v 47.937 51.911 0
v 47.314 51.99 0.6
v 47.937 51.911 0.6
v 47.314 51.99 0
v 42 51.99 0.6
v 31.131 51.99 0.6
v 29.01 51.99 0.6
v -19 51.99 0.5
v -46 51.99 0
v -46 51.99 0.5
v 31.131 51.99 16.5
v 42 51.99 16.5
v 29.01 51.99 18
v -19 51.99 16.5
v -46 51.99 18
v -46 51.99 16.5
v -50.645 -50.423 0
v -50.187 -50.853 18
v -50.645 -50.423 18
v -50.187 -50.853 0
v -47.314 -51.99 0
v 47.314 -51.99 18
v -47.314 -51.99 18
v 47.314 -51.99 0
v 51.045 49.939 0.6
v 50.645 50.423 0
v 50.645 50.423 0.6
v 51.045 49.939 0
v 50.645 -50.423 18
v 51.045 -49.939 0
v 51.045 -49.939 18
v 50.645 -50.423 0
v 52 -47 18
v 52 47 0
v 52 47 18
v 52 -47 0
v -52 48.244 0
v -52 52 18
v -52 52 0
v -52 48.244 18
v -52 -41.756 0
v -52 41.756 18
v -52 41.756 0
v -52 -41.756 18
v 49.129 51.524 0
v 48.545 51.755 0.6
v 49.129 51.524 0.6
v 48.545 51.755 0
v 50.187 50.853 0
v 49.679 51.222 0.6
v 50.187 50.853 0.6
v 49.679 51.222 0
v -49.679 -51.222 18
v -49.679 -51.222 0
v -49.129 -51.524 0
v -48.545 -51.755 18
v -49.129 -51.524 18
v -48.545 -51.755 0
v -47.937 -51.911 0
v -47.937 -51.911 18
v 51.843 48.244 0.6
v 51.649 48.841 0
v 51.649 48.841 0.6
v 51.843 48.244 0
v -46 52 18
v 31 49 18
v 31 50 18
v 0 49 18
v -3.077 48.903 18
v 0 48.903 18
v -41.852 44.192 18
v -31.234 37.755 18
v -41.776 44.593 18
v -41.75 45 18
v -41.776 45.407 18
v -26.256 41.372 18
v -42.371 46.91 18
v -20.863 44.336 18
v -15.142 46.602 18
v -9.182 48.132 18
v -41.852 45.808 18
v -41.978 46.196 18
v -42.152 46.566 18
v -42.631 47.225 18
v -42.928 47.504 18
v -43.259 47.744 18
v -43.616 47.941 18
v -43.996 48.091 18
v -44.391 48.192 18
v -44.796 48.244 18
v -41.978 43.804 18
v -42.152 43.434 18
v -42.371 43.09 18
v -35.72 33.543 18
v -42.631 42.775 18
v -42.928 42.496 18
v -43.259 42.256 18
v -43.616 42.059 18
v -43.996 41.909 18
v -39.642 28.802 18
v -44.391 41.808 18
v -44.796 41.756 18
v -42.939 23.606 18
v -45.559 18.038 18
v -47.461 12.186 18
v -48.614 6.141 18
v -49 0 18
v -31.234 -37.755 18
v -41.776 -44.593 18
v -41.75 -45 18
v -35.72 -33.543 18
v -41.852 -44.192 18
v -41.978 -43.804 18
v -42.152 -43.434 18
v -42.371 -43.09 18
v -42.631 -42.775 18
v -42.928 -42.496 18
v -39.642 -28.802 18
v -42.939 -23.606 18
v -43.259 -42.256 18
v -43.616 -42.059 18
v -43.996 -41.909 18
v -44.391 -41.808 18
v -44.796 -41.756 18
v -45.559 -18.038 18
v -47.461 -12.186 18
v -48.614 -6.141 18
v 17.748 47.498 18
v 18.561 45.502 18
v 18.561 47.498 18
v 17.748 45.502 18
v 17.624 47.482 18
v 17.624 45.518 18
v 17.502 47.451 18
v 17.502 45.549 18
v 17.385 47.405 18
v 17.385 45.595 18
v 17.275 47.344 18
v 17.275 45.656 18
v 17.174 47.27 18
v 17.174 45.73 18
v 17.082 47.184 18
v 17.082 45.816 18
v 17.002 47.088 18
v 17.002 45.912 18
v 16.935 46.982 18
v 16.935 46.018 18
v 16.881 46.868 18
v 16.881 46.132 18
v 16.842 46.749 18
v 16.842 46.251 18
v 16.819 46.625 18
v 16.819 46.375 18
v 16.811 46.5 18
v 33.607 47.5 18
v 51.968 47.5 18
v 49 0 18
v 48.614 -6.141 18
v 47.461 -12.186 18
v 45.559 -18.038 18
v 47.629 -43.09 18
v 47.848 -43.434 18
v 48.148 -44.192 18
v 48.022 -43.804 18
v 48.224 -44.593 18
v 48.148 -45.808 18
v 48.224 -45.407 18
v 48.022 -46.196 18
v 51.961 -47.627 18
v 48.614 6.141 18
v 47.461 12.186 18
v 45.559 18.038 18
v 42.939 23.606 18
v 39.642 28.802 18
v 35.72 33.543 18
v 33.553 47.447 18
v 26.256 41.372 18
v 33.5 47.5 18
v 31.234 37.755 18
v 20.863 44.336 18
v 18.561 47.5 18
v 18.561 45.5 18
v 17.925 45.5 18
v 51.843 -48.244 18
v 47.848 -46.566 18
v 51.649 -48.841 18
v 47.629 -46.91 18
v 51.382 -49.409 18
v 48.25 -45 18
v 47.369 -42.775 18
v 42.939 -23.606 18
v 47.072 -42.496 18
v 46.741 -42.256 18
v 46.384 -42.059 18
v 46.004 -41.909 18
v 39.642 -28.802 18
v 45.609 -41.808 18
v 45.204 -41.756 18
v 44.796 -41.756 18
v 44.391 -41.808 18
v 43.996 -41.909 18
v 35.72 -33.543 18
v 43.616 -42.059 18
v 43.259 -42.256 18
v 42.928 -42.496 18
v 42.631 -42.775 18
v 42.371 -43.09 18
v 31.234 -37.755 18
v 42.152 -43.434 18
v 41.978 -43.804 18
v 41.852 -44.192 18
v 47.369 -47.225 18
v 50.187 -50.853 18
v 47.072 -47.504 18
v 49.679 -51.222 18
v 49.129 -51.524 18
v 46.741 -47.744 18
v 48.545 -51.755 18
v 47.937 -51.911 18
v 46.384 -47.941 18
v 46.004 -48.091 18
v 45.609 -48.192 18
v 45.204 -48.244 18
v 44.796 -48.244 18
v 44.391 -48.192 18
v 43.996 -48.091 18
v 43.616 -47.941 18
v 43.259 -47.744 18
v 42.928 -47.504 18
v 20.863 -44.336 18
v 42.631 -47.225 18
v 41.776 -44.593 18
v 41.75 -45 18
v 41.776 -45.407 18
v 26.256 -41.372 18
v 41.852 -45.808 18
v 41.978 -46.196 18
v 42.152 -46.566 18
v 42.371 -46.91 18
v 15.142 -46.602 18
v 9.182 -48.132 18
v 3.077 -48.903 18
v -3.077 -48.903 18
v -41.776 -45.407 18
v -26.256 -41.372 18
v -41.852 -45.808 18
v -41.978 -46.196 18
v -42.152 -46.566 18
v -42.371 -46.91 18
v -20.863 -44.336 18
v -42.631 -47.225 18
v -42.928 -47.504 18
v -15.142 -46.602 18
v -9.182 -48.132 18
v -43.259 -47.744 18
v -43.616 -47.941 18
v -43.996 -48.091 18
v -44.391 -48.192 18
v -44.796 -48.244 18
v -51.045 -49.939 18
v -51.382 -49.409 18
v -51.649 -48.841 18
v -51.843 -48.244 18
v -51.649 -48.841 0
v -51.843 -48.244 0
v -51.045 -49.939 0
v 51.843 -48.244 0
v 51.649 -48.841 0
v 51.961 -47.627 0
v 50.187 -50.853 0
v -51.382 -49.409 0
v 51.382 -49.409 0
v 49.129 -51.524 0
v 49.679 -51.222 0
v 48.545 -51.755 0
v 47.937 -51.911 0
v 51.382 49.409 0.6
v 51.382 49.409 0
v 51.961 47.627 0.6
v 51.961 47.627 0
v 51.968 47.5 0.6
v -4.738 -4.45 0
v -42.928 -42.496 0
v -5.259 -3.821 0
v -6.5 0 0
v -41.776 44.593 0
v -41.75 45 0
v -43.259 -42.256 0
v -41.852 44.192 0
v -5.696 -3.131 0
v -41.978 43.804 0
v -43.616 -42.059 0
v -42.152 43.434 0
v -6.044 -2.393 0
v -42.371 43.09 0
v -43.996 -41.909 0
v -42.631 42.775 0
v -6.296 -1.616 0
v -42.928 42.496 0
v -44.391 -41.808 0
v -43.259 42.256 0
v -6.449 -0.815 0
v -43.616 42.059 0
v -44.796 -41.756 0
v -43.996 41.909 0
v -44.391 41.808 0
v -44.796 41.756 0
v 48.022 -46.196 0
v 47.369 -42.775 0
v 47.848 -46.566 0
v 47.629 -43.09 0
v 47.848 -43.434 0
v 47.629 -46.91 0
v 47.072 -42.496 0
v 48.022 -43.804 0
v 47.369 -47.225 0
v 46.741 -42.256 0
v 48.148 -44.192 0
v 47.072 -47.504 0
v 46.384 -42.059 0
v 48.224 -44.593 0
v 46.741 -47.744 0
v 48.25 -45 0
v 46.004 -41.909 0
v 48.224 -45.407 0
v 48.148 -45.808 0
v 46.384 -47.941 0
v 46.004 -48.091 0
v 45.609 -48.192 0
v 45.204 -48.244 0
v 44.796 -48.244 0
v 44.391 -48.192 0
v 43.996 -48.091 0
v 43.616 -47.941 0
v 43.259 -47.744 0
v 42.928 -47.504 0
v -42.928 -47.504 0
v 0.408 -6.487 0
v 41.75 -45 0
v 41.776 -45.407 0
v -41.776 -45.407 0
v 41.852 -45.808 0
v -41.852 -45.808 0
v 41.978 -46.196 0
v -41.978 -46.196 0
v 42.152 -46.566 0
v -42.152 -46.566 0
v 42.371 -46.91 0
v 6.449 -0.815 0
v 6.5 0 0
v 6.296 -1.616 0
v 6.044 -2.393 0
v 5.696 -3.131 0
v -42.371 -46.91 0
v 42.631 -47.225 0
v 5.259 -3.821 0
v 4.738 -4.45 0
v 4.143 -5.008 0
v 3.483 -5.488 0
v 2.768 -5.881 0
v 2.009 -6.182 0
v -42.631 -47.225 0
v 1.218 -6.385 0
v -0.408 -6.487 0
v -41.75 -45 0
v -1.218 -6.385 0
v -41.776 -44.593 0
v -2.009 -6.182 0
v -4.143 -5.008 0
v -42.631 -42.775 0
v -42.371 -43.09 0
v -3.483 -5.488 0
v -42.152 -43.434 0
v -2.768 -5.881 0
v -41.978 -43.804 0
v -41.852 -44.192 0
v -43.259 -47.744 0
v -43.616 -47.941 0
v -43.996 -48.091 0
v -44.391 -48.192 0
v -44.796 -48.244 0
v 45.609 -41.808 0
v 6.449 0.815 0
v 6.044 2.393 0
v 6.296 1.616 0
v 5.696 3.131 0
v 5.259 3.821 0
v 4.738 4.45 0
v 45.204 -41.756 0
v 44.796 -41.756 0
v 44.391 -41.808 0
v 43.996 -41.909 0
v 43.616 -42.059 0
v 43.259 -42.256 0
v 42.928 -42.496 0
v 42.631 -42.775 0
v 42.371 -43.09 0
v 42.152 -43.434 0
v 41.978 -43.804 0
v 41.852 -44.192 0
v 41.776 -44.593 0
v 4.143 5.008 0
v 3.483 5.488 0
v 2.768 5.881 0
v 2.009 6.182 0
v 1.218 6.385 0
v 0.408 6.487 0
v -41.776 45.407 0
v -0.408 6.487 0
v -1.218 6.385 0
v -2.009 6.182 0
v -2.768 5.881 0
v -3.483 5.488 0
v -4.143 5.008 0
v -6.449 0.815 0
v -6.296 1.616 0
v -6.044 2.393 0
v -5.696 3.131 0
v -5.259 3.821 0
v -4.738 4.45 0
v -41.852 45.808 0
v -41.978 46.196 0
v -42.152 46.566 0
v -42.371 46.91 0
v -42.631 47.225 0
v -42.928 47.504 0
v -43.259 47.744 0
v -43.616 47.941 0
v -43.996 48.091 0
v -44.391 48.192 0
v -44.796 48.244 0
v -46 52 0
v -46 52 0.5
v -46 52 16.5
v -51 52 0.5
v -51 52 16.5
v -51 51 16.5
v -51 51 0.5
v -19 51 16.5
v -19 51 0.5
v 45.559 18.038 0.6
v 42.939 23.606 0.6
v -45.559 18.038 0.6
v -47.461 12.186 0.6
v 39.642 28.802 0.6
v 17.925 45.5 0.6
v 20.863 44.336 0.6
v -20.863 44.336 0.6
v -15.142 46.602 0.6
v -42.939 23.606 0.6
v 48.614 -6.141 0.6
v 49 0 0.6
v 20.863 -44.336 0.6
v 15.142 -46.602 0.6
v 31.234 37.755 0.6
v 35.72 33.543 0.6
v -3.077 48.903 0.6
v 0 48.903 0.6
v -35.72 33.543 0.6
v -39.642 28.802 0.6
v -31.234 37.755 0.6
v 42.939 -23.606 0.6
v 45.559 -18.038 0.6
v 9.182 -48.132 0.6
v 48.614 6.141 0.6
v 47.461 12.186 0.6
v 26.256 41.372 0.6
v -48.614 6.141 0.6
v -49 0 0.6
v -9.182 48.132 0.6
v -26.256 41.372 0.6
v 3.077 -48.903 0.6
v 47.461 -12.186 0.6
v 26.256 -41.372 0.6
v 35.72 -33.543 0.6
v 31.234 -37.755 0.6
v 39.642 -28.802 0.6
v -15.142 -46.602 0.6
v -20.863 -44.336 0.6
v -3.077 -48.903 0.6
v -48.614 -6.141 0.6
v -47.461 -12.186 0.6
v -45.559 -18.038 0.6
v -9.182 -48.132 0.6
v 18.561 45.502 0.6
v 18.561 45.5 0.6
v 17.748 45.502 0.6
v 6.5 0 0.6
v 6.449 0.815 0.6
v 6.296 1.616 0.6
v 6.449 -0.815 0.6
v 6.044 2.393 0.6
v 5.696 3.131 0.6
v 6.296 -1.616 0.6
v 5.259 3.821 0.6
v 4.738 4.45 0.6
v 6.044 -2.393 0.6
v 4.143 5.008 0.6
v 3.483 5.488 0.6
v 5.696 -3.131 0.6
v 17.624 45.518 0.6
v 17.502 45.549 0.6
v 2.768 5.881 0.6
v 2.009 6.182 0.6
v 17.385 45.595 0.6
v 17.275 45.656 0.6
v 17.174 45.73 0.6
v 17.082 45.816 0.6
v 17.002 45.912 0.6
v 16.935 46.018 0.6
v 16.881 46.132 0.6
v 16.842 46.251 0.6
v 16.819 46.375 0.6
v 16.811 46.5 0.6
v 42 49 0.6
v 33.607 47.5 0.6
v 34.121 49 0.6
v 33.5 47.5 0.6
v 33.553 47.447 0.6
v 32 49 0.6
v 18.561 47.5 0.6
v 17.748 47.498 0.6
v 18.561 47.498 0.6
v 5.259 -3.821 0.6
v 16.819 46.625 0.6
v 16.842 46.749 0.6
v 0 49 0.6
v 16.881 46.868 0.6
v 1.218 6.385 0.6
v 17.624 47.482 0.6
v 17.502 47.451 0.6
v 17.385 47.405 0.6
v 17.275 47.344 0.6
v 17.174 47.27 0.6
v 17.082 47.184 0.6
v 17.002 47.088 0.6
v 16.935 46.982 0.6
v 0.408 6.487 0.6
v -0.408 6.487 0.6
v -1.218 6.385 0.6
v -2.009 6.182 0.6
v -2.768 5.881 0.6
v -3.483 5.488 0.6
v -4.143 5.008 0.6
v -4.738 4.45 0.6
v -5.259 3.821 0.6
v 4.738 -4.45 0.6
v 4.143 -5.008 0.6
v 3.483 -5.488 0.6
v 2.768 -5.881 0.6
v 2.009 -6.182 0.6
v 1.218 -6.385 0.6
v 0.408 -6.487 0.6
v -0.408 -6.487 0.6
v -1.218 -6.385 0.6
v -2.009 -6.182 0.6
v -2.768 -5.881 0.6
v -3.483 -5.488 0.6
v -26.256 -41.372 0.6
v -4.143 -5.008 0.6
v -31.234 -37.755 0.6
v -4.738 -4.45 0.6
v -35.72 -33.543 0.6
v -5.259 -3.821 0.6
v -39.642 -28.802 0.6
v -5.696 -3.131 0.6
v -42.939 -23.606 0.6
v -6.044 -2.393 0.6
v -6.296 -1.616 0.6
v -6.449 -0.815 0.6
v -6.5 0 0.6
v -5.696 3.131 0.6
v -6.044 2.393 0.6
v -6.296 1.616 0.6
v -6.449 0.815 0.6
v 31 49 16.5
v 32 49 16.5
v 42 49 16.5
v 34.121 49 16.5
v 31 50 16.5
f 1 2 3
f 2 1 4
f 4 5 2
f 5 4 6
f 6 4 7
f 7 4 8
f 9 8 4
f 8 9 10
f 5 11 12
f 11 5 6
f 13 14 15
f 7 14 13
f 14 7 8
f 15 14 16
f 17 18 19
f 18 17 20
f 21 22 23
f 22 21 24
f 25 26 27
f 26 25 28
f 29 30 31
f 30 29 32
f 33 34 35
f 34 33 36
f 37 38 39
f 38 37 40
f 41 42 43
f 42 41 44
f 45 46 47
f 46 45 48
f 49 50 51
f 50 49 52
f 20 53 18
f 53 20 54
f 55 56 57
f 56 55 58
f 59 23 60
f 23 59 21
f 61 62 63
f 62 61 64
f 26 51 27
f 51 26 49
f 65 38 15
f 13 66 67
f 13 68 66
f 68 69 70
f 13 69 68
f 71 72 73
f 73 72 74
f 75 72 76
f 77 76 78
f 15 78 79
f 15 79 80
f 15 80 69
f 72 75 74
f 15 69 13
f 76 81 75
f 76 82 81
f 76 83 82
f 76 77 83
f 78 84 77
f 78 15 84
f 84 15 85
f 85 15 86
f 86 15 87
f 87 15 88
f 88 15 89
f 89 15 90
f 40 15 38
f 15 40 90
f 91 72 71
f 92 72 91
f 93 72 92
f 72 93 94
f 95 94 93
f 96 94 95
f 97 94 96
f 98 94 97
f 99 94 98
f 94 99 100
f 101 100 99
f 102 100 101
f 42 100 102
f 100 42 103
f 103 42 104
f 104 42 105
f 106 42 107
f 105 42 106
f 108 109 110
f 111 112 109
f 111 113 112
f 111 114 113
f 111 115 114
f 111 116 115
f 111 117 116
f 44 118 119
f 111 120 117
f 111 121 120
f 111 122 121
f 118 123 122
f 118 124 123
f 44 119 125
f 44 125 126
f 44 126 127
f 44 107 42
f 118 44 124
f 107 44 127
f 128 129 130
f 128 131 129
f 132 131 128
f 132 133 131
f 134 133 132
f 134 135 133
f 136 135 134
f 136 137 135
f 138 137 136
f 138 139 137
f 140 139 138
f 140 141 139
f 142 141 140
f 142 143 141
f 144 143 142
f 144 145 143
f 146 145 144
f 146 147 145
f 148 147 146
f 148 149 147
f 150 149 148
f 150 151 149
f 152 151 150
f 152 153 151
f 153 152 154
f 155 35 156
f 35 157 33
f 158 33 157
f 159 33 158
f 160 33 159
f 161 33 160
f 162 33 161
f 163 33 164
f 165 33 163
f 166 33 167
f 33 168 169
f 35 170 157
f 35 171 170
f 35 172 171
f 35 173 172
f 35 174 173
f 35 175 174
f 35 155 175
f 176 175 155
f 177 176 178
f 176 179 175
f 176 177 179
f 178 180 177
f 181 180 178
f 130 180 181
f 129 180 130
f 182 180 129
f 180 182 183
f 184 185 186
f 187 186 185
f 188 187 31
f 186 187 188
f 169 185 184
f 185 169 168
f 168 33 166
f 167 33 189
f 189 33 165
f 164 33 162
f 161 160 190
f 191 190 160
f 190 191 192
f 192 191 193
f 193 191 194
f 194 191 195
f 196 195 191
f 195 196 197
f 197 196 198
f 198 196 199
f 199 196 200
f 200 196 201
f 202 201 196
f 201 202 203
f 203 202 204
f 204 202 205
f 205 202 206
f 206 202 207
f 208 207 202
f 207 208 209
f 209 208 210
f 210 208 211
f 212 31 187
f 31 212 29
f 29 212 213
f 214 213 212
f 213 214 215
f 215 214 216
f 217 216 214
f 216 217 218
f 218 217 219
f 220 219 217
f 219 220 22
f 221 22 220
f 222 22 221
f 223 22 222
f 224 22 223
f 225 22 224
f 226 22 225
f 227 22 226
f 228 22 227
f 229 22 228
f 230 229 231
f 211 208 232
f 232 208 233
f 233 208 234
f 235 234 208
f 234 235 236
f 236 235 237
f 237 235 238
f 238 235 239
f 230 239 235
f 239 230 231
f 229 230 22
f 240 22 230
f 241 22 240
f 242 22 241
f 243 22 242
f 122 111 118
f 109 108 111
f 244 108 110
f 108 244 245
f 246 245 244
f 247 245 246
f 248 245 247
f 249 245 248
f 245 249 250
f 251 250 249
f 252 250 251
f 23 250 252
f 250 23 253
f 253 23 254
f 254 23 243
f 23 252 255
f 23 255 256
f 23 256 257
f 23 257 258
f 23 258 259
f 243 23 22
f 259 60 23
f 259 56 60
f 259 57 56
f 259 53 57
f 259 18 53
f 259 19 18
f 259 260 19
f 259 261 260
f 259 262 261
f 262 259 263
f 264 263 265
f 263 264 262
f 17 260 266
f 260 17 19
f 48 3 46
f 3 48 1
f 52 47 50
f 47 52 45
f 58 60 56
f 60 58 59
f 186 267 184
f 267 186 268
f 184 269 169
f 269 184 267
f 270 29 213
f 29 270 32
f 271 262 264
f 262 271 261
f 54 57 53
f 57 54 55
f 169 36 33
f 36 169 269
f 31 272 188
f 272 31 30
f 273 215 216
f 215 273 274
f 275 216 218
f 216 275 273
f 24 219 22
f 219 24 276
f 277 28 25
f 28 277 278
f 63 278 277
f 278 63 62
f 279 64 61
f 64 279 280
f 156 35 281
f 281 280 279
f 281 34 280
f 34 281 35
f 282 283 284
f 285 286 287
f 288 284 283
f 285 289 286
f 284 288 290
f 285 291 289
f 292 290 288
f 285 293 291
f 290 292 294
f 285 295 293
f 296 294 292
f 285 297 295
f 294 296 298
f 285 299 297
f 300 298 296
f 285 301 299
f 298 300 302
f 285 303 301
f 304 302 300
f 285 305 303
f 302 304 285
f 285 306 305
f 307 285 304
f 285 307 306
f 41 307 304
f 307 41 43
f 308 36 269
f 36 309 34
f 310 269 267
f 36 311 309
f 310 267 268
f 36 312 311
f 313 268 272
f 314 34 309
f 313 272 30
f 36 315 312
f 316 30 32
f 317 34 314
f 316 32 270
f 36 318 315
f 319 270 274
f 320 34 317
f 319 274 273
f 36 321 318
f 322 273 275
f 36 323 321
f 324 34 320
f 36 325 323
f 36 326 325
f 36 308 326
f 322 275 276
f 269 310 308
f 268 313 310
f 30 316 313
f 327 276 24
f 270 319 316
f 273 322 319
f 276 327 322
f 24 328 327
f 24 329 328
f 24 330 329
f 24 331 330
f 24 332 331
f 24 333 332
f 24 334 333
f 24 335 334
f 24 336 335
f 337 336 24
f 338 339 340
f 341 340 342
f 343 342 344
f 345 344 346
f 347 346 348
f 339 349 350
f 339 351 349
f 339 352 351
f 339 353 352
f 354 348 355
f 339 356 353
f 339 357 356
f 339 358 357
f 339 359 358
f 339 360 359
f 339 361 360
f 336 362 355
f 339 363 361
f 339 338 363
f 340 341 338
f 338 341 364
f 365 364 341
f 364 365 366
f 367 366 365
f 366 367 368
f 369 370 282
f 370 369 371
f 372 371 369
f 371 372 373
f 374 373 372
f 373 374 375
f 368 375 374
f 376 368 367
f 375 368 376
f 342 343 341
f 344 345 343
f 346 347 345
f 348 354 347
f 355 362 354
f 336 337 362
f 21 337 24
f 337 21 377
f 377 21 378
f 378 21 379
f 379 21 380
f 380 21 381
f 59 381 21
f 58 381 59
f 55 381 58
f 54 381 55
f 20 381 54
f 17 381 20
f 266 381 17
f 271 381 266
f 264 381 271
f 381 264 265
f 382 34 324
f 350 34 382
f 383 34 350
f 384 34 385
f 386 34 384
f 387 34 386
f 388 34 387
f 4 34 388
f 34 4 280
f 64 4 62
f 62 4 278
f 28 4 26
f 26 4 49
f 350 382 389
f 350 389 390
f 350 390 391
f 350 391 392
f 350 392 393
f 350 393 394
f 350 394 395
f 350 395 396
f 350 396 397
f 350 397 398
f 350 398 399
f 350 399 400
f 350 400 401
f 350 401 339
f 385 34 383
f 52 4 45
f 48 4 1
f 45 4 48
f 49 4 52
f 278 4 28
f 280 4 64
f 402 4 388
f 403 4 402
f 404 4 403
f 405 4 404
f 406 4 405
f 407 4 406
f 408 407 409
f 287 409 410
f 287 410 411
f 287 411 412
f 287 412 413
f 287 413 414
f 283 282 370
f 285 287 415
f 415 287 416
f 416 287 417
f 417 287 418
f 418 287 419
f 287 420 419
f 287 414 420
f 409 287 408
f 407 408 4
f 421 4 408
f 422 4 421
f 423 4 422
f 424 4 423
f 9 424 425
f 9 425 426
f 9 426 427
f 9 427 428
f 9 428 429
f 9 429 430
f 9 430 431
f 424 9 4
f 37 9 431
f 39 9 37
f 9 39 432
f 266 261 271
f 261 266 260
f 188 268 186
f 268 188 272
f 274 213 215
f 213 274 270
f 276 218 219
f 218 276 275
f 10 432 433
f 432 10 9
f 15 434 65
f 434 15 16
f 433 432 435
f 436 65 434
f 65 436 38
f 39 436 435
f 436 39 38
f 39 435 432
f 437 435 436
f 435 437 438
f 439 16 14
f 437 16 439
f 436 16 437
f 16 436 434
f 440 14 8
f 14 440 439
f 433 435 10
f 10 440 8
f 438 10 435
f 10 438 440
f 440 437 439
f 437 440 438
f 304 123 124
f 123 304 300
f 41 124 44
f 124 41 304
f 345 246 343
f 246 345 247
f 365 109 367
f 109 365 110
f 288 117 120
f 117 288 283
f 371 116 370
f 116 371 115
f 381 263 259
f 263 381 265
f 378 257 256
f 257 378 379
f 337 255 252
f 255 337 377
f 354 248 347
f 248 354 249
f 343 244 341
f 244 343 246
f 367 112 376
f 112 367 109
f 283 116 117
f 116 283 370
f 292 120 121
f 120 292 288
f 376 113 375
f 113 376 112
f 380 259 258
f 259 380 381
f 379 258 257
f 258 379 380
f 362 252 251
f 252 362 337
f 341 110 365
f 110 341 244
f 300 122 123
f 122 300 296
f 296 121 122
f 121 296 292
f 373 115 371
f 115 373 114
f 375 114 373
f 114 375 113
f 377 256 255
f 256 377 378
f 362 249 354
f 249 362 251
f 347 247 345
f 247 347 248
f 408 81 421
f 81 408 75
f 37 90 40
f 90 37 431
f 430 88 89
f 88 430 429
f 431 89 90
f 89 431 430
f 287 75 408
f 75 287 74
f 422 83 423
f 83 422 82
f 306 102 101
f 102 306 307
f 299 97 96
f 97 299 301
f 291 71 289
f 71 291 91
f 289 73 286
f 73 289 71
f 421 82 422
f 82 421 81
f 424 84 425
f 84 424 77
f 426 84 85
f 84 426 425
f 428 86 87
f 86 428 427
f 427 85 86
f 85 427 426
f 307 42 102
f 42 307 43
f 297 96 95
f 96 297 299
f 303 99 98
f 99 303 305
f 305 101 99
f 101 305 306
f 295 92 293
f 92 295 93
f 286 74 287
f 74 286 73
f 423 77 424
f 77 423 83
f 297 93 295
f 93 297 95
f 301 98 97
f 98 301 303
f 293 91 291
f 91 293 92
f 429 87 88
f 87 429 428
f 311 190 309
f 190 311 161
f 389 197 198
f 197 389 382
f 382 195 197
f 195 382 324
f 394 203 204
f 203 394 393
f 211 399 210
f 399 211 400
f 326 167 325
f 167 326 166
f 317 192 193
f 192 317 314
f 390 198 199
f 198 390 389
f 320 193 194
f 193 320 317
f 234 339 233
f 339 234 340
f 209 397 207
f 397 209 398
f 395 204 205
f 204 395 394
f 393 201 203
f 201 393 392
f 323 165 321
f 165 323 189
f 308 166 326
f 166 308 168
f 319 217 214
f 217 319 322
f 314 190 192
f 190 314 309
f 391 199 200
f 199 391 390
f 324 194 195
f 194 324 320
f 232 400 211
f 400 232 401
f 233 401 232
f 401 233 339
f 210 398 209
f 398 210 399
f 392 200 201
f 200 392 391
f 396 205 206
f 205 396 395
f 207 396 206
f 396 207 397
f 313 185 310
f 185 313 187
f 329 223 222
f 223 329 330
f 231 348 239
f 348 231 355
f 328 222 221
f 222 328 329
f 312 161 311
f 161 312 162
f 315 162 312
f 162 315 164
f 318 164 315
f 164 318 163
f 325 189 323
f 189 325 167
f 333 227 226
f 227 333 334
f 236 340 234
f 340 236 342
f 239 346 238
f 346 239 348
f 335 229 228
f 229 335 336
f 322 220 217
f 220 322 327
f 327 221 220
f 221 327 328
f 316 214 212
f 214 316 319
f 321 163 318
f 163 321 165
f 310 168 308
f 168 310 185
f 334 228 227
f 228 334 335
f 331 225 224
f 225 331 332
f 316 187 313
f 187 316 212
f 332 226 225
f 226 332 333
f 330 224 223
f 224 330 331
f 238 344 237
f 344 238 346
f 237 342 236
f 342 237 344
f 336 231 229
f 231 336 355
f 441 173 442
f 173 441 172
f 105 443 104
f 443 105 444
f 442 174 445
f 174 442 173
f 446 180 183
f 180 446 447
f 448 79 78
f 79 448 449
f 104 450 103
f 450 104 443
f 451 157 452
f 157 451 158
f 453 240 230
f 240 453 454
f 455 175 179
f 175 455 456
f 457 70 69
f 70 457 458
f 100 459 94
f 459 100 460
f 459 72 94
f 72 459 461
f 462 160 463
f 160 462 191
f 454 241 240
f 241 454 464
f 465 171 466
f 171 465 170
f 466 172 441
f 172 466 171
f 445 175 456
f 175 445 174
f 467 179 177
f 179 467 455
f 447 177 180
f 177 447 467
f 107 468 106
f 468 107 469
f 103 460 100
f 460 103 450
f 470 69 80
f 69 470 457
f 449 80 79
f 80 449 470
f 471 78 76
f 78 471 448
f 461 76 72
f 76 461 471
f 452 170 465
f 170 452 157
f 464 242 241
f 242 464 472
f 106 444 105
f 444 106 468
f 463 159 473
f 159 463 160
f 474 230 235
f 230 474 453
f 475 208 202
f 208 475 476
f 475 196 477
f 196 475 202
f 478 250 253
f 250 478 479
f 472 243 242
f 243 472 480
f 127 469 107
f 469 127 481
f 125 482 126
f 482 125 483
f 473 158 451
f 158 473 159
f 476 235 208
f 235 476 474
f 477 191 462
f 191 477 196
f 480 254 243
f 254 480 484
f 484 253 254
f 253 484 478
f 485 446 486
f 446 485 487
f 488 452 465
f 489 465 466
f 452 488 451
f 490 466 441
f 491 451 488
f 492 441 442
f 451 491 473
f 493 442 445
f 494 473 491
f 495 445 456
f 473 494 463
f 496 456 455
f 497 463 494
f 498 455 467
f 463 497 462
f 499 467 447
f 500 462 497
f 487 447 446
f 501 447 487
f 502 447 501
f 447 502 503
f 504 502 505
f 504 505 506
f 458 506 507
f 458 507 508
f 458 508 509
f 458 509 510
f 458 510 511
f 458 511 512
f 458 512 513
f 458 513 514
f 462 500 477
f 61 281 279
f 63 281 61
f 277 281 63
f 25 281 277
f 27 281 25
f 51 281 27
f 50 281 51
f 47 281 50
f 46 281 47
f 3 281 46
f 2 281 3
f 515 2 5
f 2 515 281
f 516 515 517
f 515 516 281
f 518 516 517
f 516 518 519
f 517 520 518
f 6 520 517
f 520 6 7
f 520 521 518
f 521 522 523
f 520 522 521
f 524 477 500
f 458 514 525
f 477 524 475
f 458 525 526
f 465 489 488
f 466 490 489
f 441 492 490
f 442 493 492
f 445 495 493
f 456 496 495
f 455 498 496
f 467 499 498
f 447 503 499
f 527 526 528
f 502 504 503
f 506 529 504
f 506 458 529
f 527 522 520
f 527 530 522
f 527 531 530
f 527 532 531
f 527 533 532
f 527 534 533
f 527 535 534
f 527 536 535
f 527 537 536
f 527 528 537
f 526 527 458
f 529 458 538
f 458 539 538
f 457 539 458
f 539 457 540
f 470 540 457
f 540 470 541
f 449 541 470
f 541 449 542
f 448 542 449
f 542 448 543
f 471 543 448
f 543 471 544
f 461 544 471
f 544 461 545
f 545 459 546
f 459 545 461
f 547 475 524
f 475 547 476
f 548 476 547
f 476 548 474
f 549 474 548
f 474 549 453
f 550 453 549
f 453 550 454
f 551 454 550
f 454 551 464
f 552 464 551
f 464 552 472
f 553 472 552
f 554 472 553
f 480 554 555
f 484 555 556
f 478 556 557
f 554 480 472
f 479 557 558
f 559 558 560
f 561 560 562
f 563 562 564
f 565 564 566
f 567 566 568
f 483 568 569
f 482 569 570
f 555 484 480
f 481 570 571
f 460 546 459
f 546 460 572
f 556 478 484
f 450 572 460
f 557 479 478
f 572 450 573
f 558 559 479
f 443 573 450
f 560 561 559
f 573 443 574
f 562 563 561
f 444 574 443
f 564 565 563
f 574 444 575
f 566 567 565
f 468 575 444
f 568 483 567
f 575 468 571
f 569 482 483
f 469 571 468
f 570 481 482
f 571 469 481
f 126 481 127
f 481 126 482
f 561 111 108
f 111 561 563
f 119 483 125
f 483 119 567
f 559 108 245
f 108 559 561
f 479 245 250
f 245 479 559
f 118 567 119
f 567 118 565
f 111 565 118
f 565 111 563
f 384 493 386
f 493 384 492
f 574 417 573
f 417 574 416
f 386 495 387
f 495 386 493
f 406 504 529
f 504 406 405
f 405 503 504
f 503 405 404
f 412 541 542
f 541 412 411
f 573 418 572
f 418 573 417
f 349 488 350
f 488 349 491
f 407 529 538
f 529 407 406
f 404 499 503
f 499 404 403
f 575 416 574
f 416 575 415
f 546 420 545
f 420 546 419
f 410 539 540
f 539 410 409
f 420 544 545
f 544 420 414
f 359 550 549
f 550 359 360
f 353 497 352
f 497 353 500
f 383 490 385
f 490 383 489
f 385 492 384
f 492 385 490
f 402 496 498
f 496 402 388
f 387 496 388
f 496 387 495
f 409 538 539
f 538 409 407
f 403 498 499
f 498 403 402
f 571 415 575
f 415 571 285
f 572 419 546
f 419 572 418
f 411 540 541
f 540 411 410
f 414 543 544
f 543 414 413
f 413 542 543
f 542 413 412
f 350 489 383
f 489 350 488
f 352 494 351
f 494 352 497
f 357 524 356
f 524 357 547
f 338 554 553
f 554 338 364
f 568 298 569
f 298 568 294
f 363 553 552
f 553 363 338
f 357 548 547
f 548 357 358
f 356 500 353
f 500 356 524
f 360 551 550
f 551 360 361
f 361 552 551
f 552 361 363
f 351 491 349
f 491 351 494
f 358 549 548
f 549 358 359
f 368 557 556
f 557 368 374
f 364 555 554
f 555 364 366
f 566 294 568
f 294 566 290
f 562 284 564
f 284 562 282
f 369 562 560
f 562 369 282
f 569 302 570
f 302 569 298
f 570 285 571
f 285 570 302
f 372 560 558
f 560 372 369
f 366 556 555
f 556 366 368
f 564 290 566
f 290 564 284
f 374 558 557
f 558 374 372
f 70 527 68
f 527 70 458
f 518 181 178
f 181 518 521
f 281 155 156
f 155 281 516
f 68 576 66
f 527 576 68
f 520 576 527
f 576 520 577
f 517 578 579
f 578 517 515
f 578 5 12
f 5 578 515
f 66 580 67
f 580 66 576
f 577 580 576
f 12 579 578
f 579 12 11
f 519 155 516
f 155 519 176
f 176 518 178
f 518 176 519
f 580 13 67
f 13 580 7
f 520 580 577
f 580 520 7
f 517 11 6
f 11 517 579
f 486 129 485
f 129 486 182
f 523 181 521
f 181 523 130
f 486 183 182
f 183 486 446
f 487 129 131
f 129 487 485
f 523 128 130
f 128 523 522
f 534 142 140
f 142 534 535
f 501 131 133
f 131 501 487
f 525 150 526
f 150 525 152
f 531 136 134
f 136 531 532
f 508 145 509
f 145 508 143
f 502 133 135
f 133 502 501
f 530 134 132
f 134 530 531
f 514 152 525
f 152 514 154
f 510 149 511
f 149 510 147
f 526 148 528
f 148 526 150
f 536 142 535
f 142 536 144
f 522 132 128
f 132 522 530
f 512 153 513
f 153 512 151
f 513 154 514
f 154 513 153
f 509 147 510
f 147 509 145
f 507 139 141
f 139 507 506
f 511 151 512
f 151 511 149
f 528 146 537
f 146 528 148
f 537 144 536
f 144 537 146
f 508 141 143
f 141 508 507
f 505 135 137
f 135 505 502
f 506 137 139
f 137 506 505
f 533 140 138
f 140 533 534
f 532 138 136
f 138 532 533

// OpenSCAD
$fn = 50;


union() {
	difference() {
		union() {
			translate(v = [0, 0, 0]) {
				rotate(a = [0, 0, 0]) {
					hull() {
						translate(v = [-47.0000000000, 47.0000000000, 0]) {
							rotate(a = [0, 0, 0]) {
								translate(v = [0, 0, 0]) {
									rotate(a = [0, 0, 0]) {
										cylinder(h = 18, r = 5);
									}
								}
							}
						}
						translate(v = [47.0000000000, 47.0000000000, 0]) {
							rotate(a = [0, 0, 0]) {
								translate(v = [0, 0, 0]) {
									rotate(a = [0, 0, 0]) {
										cylinder(h = 18, r = 5);
									}
								}
							}
						}
						translate(v = [-47.0000000000, -47.0000000000, 0]) {
							rotate(a = [0, 0, 0]) {
								translate(v = [0, 0, 0]) {
									rotate(a = [0, 0, 0]) {
										cylinder(h = 18, r = 5);
									}
								}
							}
						}
						translate(v = [47.0000000000, -47.0000000000, 0]) {
							rotate(a = [0, 0, 0]) {
								translate(v = [0, 0, 0]) {
									rotate(a = [0, 0, 0]) {
										cylinder(h = 18, r = 5);
									}
								}
							}
						}
					}
				}
			}
			translate(v = [-52.0000000000, 46.0000000000, 0]) {
				rotate(a = [0, 0, 0]) {
					cube(size = [6, 6, 18]);
				}
			}
		}
		union() {
			#translate(v = [-51.0000000000, 51.0000000000, 0.5000000000]) {
				rotate(a = [0, 0, 0]) {
					cube(size = [32, 1, 16]);
				}
			}
			translate(v = [-52.5000000000, -45.0000000000, -125]) {
				rotate(a = [0, 0, 0]) {
					hull() {
						translate(v = [7.5000000000, 0, 0]) {
							rotate(a = [0, 0, 0]) {
								translate(v = [0, 0, 0]) {
									rotate(a = [0, 0, 0]) {
										cylinder(h = 250, r = 3.2500000000);
									}
								}
							}
						}
						translate(v = [-7.5000000000, 0, 0]) {
							rotate(a = [0, 0, 0]) {
								translate(v = [0, 0, 0]) {
									rotate(a = [0, 0, 0]) {
										cylinder(h = 250, r = 3.2500000000);
									}
								}
							}
						}
					}
				}
			}
			translate(v = [-52.5000000000, 45.0000000000, -125]) {
				rotate(a = [0, 0, 0]) {
					hull() {
						translate(v = [7.5000000000, 0, 0]) {
							rotate(a = [0, 0, 0]) {
								translate(v = [0, 0, 0]) {
									rotate(a = [0, 0, 0]) {
										cylinder(h = 250, r = 3.2500000000);
									}
								}
							}
						}
						translate(v = [-7.5000000000, 0, 0]) {
							rotate(a = [0, 0, 0]) {
								translate(v = [0, 0, 0]) {
									rotate(a = [0, 0, 0]) {
										cylinder(h = 250, r = 3.2500000000);
									}
								}
							}
						}
					}
				}
			}
			translate(v = [45.0000000000, -45.0000000000, -125.0000000000]) {
				rotate(a = [0, 0, 0]) {
					cylinder(h = 250, r = 3.2500000000);
				}
			}
			translate(v = [0, 0, 0.6000000000]) {
				rotate(a = [0, 0, 0]) {
					cylinder(h = 20.4000000000, r = 49.0000000000);
				}
			}
			translate(v = [0, 0, -9.0000000000]) {
				rotate(a = [0, 0, 0]) {
					cylinder(h = 18, r = 6.5000000000);
				}
			}
			translate(v = [0.0000000000, 47.5000000000, 0.6000000000]) {
				rotate(a = [0, 0, 0]) {
					cube(size = [52.0000000000, 1.5000000000, 20.4000000000]);
				}
			}
			translate(v = [42.0000000000, 47.5000000000, 0.6000000000]) {
				rotate(a = [0, 0, 0]) {
					cube(size = [10, 4.5000000000, 20.4000000000]);
				}
			}
			translate(v = [31.0000000000, 47.5000000000, 16.5000000000]) {
				rotate(a = [0, 0, 0]) {
					cube(size = [21, 4.5000000000, 1.5000000000]);
				}
			}
			translate(v = [28.2500000000, 52.7500000000, 0.6000000000]) {
				rotate(a = [0, 0, -45]) {
					cube(size = [7.5000000000, 1.5000000000, 20.4000000000]);
				}
			}
			translate(v = [11.0610000000, 45.5000000000, 0.6000000000]) {
				rotate(a = [0, 0, 0]) {
					cube(size = [7.5000000000, 2, 17.4000000000]);
				}
			}
		}
	}
	union() {
		translate(v = [20.3110000000, 46.5000000000, 0]) {
			rotate(a = [0, 0, 0]) {
				hull() {
					translate(v = [2.5000000000, 0, 0]) {
						rotate(a = [0, 0, 0]) {
							#translate(v = [0, 0, 0]) {
								rotate(a = [0, 0, 0]) {
									cylinder(h = 18, r = 1.0000000000);
								}
							}
						}
					}
					translate(v = [-2.5000000000, 0, 0]) {
						rotate(a = [0, 0, 0]) {
							#translate(v = [0, 0, 0]) {
								rotate(a = [0, 0, 0]) {
									cylinder(h = 18, r = 1.0000000000);
								}
							}
						}
					}
				}
			}
		}
	}
}
